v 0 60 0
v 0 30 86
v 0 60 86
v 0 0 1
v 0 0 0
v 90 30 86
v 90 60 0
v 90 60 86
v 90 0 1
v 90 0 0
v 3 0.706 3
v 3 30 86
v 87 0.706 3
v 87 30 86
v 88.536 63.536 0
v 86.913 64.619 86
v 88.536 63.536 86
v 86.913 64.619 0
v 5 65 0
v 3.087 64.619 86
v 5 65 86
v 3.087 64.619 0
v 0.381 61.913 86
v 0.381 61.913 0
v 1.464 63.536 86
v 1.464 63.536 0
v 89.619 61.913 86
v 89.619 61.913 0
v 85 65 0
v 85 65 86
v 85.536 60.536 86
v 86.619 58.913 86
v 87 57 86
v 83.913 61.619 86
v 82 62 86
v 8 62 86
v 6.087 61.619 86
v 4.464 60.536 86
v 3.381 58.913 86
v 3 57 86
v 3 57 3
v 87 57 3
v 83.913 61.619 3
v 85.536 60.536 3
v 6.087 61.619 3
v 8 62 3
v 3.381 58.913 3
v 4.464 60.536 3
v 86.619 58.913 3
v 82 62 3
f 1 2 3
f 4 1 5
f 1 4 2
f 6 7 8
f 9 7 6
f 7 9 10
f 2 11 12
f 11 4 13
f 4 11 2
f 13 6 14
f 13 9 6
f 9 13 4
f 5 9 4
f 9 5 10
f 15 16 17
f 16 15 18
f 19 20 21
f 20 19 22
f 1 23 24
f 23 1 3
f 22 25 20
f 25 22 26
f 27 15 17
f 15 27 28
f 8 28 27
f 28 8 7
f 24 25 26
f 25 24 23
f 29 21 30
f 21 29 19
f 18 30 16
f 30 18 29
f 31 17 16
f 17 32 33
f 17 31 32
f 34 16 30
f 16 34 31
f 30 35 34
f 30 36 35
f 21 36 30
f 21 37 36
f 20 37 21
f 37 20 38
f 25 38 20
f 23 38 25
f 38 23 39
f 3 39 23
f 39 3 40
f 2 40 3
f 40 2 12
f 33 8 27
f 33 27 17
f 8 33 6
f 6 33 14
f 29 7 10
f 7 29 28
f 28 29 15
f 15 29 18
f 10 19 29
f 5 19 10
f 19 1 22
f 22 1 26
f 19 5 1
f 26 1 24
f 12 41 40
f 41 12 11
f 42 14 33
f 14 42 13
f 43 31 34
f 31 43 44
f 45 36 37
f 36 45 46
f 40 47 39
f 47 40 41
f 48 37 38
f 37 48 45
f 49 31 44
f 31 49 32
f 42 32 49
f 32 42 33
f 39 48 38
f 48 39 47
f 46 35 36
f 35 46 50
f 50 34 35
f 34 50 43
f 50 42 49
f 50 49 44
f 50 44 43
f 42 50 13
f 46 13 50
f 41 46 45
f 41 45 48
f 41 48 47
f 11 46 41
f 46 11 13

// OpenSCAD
module hplate(dd,ww,rr) {
  union() {
    difference() {
      square([ww,dd]);
      translate([ww-rr,dd-rr]) square([rr,rr]);
      translate([0,dd-rr]) square([rr,rr]);
    }
    translate([ww-rr,dd-rr]) circle(rr);
    translate([rr,dd-rr]) circle(rr);
  }
}

module bod0(dbase,dtop,ww,ht,rr,wall) {
  hull() {
    linear_extrude(1) hplate(dbase,ww,rr,wall);
    translate([0,dbase-dtop,ht]) linear_extrude(1) hplate(dtop,ww,rr);
  }
}

module body(dbase,dtop,width,height,radius,wall) {
  difference() {
    bod0(dbase,dtop,width,height,radius,wall);
    #translate([wall,0,wall])
      bod0(dbase-wall,dtop-wall,width-wall*2,height-wall,
           radius,wall);
  }
}

//body(100,60,120,100,10,4);

//rotate([90,0,90]) import("Case.STL");
# body(65,35,90,85,5,3);
